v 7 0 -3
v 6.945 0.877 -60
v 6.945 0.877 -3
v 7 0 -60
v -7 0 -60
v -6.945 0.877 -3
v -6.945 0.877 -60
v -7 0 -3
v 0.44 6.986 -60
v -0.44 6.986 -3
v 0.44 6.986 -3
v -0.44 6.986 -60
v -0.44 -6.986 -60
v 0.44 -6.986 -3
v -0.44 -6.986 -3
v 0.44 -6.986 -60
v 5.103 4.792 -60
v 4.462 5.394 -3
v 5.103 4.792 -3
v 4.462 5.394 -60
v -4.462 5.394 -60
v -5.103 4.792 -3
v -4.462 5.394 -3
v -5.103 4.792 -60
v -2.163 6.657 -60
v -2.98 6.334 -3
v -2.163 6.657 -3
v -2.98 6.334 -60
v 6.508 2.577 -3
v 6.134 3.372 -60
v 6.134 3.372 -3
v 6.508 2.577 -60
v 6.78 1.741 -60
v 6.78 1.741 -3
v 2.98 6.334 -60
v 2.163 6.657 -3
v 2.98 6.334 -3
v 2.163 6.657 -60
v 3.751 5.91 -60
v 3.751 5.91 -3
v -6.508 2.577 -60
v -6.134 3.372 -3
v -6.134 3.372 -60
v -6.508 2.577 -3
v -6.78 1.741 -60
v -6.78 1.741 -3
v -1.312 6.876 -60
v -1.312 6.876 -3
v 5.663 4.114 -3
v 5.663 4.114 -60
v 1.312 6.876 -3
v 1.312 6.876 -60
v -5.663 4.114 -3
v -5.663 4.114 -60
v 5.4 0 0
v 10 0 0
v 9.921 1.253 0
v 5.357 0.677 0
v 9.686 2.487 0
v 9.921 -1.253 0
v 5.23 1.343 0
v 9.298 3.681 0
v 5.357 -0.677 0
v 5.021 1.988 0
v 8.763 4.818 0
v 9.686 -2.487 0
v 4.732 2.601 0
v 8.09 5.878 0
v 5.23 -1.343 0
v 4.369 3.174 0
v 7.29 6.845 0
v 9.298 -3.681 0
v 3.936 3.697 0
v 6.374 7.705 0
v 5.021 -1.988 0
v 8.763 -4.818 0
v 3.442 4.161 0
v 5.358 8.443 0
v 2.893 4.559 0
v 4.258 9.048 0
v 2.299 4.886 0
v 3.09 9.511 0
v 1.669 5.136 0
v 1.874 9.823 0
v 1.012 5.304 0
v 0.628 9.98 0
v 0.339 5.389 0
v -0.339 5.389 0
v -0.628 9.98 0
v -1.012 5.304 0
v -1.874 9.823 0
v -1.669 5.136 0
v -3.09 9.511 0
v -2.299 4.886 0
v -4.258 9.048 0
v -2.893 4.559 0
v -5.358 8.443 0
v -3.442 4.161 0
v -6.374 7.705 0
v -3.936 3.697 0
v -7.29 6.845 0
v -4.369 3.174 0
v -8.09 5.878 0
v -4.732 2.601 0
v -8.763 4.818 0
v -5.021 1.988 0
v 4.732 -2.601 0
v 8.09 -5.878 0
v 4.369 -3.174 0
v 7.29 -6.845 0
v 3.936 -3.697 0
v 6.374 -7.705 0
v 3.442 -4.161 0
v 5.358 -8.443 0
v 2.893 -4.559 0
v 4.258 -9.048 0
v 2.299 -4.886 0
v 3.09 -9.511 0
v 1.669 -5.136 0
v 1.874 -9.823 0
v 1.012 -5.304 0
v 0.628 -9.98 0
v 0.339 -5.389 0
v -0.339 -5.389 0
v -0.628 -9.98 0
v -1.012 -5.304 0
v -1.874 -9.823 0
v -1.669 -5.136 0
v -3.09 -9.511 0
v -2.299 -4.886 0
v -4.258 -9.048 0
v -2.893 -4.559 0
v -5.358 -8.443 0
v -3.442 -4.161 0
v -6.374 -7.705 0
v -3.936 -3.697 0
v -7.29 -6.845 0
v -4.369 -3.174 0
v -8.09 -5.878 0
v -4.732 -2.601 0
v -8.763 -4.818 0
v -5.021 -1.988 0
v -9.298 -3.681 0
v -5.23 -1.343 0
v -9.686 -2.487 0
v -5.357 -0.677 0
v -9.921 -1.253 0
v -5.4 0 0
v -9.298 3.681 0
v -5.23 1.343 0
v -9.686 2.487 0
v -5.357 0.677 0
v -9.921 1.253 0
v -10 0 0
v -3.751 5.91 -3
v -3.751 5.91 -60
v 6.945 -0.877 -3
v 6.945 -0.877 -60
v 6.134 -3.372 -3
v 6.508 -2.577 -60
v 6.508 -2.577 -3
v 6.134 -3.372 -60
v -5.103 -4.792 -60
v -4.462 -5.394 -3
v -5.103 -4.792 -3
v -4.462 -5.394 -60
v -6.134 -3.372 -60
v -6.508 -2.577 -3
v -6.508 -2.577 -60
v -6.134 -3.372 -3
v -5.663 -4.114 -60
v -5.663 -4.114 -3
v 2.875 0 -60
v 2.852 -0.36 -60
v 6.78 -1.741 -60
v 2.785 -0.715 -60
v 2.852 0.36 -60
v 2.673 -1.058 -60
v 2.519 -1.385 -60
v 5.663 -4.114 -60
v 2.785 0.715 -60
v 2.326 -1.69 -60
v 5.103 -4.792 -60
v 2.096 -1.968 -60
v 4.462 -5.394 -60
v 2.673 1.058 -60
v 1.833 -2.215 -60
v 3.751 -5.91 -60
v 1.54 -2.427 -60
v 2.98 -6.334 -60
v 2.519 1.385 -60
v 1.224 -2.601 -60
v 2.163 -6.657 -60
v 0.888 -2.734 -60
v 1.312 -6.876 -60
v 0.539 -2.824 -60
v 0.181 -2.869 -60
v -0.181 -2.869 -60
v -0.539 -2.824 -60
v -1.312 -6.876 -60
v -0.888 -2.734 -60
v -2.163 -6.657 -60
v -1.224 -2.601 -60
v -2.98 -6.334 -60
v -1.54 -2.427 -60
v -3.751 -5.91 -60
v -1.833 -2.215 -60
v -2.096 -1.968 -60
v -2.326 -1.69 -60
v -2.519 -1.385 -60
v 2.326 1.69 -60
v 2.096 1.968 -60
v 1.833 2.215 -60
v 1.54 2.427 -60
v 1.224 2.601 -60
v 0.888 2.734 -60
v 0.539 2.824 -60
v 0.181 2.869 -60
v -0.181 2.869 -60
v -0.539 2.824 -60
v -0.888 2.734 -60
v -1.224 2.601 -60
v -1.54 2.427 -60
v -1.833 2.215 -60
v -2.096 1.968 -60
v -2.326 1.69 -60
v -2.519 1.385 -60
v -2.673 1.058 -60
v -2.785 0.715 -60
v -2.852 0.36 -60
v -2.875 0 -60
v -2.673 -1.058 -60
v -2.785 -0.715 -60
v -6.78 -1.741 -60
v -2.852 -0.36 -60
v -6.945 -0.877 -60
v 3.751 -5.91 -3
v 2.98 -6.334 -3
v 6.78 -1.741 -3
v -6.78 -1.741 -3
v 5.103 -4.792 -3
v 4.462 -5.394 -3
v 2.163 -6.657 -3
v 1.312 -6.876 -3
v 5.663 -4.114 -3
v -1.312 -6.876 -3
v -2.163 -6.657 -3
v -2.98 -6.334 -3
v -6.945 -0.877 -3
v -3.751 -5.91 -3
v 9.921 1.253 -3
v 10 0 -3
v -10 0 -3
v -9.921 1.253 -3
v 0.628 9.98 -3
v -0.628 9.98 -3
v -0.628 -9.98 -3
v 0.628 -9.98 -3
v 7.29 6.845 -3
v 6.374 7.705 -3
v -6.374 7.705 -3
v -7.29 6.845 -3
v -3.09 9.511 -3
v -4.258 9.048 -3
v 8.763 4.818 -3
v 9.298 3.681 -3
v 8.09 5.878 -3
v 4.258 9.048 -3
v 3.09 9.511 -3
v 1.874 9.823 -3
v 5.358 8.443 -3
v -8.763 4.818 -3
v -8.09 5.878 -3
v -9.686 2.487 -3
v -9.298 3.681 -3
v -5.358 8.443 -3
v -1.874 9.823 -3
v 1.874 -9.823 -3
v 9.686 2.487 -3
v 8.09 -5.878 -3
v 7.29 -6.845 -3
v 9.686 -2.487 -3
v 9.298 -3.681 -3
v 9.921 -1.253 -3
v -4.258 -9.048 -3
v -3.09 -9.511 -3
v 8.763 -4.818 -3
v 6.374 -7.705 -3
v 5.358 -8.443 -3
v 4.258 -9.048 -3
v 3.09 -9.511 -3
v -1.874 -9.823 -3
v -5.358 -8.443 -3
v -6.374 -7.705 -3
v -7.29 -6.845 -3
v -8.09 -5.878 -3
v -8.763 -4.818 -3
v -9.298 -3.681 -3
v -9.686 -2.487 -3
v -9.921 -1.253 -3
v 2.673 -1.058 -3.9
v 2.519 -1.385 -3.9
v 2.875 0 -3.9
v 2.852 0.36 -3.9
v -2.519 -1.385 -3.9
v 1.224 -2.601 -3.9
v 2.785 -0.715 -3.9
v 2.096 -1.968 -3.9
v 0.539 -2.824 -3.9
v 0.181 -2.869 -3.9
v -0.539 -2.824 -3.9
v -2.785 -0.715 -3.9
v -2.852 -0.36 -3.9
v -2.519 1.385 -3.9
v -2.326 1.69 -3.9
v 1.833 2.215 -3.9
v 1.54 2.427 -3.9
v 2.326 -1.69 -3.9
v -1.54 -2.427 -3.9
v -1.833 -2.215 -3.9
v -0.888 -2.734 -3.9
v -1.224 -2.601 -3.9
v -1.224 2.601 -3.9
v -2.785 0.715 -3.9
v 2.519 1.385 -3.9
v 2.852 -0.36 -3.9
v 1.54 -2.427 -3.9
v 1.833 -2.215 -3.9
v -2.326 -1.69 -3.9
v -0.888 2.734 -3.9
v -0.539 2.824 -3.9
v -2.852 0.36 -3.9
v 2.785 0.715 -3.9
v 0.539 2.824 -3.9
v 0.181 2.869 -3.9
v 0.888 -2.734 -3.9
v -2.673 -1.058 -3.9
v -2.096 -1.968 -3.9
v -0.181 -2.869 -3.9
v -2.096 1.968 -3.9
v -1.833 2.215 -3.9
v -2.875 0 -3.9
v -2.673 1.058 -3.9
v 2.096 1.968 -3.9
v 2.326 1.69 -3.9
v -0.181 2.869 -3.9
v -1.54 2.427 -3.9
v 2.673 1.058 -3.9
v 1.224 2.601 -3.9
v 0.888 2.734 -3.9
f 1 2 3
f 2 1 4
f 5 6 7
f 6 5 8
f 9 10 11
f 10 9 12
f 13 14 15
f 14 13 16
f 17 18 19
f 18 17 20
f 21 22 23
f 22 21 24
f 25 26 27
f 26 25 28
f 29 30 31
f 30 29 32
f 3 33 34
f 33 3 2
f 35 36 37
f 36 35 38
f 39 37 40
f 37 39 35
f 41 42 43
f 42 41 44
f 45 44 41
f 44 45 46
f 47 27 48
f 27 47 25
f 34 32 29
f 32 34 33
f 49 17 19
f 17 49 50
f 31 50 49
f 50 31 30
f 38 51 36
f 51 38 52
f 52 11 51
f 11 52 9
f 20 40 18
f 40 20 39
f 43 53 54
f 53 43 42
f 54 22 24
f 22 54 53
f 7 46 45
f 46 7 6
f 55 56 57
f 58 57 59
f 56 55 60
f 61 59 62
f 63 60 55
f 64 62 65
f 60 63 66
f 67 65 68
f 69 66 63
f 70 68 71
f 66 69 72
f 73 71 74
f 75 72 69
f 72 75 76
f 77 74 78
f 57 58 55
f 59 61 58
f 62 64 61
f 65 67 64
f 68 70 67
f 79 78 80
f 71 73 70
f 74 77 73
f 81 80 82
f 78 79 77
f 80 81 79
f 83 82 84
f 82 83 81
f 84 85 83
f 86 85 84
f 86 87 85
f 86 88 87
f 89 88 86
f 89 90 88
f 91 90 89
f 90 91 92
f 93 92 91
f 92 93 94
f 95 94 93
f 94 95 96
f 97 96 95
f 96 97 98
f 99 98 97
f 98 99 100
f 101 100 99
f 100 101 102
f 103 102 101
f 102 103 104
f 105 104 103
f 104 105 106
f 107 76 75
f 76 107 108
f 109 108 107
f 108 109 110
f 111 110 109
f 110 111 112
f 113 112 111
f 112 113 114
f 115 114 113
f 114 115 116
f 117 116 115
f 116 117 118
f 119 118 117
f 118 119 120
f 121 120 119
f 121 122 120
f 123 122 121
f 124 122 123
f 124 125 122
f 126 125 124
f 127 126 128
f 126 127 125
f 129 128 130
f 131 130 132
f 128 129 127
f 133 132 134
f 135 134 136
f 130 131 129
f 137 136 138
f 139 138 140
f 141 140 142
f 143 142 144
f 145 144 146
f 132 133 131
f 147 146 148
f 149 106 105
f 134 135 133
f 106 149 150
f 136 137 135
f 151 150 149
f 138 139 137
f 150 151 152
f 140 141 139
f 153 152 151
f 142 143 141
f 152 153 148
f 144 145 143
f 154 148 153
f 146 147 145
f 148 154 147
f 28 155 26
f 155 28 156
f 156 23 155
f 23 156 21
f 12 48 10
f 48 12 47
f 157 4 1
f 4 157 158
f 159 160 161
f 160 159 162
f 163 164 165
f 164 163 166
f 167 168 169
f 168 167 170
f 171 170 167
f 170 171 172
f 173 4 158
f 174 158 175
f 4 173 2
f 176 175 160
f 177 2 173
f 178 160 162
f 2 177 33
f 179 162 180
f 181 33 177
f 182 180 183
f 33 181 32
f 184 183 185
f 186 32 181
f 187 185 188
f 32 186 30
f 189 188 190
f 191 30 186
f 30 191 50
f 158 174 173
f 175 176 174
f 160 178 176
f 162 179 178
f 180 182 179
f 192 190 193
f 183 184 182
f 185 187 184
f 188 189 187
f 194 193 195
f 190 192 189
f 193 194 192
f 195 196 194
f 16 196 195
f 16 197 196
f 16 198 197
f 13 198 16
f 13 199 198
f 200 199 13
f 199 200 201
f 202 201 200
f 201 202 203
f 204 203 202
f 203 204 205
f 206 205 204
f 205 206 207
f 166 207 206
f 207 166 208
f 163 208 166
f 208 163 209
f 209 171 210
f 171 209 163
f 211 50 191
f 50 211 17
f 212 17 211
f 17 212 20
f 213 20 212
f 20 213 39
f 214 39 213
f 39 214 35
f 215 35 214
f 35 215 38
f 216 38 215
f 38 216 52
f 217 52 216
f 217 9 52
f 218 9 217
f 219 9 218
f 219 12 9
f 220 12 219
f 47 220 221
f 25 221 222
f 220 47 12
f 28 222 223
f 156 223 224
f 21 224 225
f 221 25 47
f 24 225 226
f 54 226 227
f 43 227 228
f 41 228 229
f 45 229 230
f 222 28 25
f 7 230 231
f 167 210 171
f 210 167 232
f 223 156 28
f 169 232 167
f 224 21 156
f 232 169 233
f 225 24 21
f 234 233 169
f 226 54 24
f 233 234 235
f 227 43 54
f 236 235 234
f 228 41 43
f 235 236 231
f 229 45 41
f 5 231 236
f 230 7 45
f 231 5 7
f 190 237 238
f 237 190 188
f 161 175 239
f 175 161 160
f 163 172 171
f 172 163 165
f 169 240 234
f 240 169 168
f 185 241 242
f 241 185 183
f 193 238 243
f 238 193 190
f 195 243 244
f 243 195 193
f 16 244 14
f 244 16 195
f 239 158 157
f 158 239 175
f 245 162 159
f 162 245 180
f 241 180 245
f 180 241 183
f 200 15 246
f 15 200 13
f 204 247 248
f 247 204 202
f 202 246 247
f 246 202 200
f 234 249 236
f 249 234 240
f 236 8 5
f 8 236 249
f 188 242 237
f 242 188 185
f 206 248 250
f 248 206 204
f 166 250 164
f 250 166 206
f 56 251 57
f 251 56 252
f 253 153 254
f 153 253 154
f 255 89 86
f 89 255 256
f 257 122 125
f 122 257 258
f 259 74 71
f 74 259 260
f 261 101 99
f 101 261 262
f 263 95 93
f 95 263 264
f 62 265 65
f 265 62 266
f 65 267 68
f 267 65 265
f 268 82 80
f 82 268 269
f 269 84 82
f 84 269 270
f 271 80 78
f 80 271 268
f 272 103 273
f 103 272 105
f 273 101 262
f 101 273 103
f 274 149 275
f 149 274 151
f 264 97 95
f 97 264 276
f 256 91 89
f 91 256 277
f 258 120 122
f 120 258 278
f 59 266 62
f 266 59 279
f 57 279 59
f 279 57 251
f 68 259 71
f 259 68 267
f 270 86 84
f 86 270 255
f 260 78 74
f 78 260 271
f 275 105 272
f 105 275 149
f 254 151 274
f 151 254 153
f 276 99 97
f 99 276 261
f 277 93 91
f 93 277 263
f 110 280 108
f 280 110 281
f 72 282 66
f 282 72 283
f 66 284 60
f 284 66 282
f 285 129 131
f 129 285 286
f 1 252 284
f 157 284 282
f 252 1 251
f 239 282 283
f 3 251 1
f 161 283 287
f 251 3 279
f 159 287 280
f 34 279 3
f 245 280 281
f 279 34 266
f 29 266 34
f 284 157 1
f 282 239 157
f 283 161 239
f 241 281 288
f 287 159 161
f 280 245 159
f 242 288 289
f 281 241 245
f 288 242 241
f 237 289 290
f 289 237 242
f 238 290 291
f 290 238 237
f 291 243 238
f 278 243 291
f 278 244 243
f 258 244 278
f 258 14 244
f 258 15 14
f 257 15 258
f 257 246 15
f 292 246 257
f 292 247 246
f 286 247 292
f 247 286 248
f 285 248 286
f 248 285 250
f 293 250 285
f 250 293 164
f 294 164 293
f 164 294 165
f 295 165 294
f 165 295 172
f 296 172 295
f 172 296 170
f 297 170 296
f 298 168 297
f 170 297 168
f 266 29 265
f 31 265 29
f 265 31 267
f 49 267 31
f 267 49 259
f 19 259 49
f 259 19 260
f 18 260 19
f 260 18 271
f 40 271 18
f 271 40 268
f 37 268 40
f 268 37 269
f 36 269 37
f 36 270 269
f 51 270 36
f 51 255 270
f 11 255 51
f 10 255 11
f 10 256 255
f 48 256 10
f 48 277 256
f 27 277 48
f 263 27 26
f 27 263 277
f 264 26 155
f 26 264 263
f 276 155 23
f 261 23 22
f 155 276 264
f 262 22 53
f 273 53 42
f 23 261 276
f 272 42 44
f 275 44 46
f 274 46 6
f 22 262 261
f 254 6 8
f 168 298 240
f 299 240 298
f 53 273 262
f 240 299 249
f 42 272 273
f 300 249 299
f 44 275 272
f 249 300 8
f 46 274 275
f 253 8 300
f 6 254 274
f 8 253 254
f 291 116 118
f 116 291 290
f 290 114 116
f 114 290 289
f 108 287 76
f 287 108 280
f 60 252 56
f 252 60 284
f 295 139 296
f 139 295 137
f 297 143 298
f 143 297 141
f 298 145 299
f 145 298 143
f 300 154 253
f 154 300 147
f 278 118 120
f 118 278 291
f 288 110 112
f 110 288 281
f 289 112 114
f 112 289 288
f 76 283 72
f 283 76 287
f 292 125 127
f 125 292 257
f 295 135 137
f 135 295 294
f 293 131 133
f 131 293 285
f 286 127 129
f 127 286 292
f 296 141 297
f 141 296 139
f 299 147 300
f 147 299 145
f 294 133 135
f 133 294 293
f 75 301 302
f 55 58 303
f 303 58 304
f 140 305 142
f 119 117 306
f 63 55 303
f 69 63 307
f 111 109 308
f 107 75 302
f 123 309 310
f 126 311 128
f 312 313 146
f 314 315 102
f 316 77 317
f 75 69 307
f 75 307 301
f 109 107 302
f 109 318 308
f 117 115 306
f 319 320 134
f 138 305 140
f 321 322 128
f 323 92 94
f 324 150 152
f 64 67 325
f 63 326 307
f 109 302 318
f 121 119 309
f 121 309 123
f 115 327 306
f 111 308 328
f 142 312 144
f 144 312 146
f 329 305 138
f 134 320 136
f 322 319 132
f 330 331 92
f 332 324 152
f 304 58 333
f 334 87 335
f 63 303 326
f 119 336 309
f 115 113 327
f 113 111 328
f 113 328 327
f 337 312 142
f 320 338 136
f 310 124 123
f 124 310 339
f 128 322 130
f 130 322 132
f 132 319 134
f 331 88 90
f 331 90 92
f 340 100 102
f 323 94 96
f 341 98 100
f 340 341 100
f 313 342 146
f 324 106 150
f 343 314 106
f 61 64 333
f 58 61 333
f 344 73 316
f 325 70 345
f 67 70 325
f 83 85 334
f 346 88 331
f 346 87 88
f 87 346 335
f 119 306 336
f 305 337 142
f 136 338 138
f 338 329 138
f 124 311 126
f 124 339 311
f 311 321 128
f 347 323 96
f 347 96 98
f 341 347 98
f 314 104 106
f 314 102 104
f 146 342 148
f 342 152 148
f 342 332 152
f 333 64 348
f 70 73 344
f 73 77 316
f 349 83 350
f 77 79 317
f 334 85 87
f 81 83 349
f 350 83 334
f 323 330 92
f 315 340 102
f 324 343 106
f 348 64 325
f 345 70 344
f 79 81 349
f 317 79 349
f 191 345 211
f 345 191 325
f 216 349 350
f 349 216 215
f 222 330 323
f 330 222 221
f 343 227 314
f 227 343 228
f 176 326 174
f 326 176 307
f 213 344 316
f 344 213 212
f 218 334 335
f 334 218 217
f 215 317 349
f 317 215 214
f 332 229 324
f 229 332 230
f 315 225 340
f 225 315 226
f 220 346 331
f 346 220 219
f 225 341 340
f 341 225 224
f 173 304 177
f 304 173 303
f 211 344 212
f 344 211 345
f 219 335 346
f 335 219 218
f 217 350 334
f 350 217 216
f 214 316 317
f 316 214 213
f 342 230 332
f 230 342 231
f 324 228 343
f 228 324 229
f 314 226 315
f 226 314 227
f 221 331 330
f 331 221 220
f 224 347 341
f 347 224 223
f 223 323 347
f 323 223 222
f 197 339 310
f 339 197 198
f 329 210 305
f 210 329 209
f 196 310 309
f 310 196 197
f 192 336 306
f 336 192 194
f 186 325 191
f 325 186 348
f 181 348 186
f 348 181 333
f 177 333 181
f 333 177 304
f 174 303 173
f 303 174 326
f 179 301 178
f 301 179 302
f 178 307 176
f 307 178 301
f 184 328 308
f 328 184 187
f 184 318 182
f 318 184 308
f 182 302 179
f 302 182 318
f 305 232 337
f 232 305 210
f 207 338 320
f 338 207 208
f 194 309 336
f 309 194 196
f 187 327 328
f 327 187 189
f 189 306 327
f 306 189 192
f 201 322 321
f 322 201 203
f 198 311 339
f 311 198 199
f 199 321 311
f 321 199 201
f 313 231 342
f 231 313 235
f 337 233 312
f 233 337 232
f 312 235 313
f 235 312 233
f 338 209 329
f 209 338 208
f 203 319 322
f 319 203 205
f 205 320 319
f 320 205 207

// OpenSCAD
$fn = 50;


difference() {
	union() {
		translate(v = [0, 0, -60.0000000000]) {
			cylinder(h = 60, r = 7.0000000000);
		}
		translate(v = [0, 0, -3.0000000000]) {
			cylinder(h = 3, r = 10.0000000000);
		}
	}
	union() {
		translate(v = [0, 0, 0]) {
			rotate(a = [0, 0, 0]) {
				difference() {
					union() {
						#translate(v = [0, 0, -60.0000000000]) {
							cylinder(h = 60, r = 2.6000000000);
						}
						#translate(v = [0, 0, -3.9000000000]) {
							cylinder(h = 3.9000000000, r1 = 2.8750000000, r2 = 5.4000000000);
						}
						#translate(v = [0, 0, -60.0000000000]) {
							cylinder(h = 60, r = 2.8750000000);
						}
						#translate(v = [0, 0, -60.0000000000]) {
							cylinder(h = 60, r = 2.6000000000);
						}
					}
					union();
				}
			}
		}
	}
}
